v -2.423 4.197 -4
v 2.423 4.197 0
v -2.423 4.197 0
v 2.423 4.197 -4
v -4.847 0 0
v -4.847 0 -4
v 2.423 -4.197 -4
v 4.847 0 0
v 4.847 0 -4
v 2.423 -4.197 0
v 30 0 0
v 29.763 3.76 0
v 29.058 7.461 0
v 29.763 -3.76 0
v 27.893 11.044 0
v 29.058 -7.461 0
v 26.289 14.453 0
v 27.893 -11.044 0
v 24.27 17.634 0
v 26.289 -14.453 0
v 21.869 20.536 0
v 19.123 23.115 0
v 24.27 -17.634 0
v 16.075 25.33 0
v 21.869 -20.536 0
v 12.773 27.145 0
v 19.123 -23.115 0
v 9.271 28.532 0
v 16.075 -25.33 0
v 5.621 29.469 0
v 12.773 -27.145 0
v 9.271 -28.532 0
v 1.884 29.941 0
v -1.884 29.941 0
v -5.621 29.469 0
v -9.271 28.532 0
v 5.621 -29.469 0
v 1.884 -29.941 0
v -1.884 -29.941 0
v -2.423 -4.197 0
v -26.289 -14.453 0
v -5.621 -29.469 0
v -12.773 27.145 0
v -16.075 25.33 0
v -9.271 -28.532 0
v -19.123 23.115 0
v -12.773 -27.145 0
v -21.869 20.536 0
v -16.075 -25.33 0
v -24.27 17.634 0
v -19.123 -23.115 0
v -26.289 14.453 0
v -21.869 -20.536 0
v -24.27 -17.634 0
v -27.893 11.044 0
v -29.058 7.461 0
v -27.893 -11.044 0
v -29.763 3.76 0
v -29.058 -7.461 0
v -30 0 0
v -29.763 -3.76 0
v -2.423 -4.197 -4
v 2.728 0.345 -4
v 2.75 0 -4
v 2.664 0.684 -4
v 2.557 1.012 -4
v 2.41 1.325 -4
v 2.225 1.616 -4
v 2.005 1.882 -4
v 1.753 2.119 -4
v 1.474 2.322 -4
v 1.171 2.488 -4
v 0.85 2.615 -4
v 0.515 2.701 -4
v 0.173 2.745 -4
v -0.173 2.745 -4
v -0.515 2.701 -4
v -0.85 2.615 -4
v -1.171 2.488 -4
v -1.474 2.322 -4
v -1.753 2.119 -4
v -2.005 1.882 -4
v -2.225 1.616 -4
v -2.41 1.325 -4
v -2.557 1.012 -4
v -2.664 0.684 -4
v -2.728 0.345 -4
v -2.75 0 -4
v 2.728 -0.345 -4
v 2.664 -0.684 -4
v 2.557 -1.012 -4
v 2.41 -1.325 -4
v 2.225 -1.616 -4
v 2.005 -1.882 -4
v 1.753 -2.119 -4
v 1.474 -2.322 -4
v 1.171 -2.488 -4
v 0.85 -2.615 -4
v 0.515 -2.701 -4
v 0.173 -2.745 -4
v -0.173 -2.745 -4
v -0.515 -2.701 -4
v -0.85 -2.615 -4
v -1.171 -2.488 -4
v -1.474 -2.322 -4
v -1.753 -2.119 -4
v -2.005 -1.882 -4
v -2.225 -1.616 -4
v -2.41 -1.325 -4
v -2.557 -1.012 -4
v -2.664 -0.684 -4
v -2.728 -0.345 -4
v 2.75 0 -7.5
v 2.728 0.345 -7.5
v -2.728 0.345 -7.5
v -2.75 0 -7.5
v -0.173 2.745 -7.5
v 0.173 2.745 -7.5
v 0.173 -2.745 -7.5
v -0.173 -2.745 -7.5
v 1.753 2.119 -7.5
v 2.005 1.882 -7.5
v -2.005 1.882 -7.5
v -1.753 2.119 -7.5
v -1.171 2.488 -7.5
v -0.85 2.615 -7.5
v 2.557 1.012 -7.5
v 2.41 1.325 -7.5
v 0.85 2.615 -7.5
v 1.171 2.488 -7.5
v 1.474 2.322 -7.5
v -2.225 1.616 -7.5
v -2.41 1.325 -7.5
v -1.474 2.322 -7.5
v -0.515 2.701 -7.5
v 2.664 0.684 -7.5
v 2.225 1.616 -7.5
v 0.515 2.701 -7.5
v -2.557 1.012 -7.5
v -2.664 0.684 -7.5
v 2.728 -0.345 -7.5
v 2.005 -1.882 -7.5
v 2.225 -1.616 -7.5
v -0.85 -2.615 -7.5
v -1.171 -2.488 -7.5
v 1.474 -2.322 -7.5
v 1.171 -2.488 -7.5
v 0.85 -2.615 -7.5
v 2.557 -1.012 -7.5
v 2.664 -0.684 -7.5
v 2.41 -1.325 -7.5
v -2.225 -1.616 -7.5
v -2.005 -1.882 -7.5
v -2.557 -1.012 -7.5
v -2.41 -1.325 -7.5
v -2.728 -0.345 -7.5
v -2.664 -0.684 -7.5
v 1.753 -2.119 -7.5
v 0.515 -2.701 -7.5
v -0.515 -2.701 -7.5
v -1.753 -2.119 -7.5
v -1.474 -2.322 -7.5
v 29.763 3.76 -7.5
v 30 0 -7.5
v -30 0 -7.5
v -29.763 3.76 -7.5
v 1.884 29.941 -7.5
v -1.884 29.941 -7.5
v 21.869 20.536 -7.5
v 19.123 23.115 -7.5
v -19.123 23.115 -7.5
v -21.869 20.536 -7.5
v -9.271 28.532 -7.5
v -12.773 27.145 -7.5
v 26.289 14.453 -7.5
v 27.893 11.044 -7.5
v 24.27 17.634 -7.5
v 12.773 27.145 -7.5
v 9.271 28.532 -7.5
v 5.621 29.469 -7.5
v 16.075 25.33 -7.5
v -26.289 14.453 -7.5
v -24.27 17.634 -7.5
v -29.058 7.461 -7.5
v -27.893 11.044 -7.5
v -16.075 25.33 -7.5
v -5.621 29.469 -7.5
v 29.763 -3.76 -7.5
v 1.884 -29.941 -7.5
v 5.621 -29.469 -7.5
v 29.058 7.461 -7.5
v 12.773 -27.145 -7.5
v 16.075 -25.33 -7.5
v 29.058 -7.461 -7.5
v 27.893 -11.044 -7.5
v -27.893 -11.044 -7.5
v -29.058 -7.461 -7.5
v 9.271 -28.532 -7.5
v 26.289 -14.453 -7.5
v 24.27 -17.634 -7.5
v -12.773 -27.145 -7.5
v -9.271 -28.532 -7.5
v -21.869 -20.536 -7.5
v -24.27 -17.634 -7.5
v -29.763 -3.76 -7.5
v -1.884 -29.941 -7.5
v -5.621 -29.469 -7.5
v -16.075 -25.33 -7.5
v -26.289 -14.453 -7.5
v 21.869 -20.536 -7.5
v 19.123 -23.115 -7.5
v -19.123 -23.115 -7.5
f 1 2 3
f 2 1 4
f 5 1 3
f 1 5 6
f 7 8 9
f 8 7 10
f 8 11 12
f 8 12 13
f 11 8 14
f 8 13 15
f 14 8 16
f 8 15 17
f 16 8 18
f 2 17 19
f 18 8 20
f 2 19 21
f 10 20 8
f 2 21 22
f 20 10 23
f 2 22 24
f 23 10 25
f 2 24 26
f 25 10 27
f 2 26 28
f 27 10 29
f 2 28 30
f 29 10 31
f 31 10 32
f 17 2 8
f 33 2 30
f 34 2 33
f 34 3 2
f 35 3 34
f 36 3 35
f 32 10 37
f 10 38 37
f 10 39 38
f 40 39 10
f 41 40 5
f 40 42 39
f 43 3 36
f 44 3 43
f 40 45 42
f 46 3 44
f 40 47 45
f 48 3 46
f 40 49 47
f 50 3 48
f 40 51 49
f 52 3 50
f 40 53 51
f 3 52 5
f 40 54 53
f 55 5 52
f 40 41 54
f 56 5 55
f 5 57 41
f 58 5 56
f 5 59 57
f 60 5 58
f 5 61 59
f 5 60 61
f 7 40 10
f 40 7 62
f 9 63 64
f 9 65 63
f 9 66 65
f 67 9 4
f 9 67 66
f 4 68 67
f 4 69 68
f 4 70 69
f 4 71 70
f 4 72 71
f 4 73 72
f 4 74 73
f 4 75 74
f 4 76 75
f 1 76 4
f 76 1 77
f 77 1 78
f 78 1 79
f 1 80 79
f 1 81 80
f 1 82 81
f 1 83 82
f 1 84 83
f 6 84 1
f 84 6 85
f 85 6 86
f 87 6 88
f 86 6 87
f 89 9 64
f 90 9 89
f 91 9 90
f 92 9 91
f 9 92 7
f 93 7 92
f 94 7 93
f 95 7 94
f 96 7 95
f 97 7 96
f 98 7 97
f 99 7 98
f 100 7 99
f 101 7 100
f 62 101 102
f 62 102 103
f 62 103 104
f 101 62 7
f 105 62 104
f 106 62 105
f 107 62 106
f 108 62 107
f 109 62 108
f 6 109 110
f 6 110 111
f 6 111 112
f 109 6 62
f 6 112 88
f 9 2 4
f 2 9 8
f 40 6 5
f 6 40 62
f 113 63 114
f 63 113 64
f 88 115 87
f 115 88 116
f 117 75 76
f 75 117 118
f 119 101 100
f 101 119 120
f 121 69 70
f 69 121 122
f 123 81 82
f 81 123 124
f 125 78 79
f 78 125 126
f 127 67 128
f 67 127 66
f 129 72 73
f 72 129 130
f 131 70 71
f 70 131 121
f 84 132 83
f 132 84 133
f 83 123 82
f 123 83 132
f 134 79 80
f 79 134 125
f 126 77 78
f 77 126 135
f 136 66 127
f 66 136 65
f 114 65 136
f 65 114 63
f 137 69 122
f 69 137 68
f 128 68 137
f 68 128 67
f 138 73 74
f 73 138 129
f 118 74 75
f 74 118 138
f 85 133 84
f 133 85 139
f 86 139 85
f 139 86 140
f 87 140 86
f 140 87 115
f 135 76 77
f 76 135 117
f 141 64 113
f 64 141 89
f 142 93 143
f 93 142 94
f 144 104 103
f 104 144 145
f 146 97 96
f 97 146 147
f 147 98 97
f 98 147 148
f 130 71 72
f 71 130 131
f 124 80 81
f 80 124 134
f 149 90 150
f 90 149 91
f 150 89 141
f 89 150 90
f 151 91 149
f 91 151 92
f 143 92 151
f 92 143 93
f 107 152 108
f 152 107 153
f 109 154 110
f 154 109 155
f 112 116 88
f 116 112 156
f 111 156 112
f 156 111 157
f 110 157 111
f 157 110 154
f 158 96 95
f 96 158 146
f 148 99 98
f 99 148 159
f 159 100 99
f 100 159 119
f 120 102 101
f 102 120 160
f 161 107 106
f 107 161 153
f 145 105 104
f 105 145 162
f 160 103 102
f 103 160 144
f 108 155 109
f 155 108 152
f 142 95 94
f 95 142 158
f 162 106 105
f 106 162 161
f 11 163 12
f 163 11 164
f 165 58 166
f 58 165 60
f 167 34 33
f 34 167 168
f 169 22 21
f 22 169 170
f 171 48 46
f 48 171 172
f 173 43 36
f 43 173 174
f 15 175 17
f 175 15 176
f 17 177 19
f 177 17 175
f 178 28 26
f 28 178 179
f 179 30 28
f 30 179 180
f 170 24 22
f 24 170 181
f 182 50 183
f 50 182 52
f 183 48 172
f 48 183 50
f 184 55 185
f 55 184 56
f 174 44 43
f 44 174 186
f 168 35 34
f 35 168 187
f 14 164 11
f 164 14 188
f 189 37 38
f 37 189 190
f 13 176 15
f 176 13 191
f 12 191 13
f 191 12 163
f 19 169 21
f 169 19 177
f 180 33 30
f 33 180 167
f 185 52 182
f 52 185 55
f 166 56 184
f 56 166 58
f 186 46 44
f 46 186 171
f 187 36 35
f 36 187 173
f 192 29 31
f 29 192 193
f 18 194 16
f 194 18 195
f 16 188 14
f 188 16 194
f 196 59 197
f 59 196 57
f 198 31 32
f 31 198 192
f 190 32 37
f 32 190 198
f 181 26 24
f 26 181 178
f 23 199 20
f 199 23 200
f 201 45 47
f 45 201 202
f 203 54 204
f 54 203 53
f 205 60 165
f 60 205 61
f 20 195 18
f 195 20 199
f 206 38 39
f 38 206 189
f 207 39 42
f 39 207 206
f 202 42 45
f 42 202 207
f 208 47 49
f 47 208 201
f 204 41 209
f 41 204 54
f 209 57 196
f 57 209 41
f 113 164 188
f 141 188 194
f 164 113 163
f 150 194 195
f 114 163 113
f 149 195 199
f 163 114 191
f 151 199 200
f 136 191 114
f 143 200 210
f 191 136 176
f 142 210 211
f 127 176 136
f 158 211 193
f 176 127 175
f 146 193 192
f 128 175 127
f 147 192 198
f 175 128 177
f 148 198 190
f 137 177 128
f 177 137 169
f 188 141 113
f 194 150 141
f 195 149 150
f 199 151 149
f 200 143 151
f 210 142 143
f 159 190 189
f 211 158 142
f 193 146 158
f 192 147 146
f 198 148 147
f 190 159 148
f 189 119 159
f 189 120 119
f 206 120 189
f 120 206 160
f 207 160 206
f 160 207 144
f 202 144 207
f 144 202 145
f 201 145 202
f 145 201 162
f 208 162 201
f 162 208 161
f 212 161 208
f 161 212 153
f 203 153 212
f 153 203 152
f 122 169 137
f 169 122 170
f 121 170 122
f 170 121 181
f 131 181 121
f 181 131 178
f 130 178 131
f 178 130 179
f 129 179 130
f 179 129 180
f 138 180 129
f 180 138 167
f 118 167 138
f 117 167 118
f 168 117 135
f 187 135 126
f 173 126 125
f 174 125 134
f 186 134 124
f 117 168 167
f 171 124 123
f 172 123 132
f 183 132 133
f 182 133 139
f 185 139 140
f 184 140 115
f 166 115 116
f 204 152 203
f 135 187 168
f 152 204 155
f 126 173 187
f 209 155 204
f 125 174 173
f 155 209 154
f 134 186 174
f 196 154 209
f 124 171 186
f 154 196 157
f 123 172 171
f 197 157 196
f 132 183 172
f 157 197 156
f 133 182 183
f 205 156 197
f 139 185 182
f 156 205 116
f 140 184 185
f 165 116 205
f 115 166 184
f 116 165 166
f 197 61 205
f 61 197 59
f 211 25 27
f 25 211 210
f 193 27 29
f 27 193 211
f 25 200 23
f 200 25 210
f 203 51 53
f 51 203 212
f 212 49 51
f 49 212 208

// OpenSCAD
$fn = 50;


difference() {
	union() {
		translate(v = [0, 0, -7.5000000000]) {
			cylinder(h = 7.5000000000, r = 30.0000000000);
		}
	}
	union() {
		translate(v = [0, 0, 0]) {
			rotate(a = [0, 0, 0]) {
				difference() {
					union() {
						translate(v = [0, 0, -4]) {
							linear_extrude(height = 4) {
								polygon(points = [[4.8468000000, 0.0000000000], [2.4234000000, 4.1974519271], [-2.4234000000, 4.1974519271], [-4.8468000000, 0.0000000000], [-2.4234000000, -4.1974519271], [2.4234000000, -4.1974519271]]);
							}
						}
					}
					union();
				}
			}
		}
		#translate(v = [0, 0, -100.0000000000]) {
			cylinder(h = 200, r = 2.7500000000);
		}
	}
}
